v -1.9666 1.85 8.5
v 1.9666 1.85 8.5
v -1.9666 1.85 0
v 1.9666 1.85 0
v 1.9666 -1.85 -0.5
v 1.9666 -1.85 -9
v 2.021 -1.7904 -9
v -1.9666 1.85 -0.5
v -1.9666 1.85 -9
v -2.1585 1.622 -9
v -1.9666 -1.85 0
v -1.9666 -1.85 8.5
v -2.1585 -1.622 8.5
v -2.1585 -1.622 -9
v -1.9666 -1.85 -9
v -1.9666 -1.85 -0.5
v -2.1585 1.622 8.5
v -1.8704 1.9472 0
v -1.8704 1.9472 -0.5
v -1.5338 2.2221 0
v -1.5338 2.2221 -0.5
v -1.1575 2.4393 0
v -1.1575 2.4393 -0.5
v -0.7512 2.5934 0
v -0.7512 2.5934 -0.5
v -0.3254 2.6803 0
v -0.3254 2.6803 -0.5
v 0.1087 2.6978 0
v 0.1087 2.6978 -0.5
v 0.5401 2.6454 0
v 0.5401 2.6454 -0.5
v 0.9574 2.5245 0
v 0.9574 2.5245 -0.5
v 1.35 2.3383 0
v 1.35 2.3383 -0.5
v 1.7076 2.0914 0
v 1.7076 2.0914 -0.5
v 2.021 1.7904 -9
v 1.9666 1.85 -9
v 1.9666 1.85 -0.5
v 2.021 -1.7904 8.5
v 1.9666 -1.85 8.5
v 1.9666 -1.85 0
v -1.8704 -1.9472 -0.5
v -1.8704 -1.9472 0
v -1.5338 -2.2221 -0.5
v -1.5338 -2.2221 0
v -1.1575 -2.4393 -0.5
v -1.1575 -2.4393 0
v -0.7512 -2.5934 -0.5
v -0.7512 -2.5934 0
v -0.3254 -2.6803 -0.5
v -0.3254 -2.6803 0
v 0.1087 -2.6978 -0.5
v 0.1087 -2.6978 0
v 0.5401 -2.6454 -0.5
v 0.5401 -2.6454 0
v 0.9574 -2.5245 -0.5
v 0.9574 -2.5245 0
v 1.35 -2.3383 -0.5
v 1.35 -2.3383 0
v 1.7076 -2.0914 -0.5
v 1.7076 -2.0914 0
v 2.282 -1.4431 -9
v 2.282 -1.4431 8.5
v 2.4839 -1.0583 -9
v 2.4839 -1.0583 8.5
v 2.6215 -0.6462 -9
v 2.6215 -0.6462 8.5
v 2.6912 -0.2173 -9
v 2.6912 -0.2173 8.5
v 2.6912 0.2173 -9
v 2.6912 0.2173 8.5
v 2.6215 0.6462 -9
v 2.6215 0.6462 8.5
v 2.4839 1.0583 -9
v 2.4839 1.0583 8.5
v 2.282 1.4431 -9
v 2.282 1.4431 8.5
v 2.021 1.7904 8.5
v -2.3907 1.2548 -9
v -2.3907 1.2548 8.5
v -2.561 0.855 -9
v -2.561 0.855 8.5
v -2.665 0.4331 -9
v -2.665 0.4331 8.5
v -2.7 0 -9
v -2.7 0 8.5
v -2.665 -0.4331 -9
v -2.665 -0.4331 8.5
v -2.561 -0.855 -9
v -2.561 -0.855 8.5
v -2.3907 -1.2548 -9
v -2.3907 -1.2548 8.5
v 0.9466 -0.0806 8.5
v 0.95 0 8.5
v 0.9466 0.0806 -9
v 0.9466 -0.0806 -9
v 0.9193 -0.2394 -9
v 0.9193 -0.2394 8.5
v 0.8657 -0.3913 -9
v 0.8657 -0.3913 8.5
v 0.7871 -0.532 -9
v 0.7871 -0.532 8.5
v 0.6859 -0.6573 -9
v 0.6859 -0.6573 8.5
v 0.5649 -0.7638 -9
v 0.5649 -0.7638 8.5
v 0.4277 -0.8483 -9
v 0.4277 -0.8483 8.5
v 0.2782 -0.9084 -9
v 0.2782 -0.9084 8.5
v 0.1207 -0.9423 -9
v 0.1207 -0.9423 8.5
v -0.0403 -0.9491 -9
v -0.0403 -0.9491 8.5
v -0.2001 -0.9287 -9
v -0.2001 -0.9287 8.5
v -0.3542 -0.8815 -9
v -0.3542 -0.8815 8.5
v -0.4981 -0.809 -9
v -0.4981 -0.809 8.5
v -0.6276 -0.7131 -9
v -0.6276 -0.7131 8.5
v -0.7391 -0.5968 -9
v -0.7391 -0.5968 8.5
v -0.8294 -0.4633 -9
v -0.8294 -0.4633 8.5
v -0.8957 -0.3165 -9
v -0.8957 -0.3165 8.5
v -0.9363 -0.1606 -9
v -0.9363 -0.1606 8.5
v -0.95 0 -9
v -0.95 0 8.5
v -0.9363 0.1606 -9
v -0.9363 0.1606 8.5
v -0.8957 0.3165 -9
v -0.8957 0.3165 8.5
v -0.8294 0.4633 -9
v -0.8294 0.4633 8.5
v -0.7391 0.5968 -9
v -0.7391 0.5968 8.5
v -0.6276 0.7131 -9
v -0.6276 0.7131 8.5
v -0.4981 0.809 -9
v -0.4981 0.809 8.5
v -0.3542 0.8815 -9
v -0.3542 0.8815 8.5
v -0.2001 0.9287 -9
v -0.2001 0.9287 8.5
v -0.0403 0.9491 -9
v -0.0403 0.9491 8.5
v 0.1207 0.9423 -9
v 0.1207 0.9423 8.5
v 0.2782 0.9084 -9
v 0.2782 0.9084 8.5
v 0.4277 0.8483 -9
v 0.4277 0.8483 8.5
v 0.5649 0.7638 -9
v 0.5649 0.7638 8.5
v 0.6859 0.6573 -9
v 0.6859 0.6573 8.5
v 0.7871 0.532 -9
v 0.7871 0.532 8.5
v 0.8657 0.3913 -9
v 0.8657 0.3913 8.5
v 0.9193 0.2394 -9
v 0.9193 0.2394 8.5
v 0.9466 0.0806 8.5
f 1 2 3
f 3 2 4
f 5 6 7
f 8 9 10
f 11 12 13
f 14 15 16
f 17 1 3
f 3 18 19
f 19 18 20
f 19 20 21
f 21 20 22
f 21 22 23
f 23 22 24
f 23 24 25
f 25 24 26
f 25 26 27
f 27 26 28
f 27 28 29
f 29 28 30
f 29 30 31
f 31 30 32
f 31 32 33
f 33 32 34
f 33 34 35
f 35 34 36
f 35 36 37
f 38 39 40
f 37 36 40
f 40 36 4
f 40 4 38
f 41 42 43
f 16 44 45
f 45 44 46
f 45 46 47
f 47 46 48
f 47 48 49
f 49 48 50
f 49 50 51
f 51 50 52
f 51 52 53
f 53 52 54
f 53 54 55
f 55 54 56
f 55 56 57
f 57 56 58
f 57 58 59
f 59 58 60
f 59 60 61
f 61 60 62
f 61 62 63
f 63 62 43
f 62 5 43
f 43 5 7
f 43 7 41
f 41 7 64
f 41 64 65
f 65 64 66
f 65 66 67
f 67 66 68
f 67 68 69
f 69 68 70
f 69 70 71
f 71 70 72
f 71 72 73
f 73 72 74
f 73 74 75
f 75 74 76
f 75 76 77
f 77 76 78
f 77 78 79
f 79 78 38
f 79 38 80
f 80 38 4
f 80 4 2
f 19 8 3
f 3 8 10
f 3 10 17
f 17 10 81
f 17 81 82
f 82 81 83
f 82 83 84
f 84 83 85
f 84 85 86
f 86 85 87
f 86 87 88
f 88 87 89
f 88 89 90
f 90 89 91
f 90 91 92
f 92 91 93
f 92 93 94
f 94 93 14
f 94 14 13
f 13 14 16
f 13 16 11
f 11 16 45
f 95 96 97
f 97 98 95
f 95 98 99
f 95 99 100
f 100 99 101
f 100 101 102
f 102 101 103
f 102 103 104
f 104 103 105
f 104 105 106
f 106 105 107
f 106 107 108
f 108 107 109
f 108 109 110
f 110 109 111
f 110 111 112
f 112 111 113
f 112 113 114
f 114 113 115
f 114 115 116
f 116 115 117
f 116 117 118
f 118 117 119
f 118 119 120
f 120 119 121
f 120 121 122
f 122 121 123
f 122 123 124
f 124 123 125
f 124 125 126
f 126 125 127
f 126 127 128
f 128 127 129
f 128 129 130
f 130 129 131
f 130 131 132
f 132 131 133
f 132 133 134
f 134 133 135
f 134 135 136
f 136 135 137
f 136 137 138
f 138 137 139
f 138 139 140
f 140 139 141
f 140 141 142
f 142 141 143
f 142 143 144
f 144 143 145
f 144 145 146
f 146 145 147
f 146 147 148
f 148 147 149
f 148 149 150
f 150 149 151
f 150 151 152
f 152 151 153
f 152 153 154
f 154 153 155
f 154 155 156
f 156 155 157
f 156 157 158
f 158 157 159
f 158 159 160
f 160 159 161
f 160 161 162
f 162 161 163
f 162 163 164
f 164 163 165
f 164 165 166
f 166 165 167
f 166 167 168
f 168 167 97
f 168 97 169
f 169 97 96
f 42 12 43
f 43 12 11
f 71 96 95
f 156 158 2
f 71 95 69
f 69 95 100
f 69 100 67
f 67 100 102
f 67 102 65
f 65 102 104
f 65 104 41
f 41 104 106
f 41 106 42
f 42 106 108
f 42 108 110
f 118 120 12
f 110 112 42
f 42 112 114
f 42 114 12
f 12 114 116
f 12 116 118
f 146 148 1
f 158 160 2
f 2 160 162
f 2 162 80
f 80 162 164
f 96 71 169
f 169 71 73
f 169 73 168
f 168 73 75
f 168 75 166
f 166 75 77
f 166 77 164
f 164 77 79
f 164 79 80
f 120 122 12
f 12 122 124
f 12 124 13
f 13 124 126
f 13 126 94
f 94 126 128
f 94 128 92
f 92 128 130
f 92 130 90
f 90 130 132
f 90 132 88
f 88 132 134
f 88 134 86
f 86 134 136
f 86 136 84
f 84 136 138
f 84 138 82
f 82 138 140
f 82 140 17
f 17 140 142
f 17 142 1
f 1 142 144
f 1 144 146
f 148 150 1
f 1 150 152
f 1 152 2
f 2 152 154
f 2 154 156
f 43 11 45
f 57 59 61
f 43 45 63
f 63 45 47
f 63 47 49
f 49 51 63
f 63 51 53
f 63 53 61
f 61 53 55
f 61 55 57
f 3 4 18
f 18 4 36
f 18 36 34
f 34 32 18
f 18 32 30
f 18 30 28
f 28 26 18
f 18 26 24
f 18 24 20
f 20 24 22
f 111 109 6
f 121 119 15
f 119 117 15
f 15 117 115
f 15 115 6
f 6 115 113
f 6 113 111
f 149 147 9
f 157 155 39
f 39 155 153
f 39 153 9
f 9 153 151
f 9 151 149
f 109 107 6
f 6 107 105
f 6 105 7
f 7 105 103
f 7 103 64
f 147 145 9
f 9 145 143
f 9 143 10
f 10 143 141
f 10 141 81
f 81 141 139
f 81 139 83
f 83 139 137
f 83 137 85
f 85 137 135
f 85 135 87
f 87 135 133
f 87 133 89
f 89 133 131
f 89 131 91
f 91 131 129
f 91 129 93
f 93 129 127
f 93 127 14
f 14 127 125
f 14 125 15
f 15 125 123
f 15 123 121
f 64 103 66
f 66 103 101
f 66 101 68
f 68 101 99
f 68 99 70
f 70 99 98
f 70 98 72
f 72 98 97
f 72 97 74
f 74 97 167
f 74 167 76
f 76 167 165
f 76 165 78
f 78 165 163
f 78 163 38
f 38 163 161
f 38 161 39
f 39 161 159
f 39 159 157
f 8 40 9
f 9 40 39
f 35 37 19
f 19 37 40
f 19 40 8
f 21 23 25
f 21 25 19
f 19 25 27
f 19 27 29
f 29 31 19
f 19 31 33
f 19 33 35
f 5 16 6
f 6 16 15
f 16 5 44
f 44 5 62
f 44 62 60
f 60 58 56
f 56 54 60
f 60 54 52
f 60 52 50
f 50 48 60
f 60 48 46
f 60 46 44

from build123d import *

# Parameters (mm, degrees)
BOSS_EXTRUDE2_DEPTH = 8.5
BOSS_EXTRUDE4_START = 9
SKETCH3_R           = 2.700000061
SKETCH3_R_2         = 0.950000005
BOSS_EXTRUDE4_DEPTH = 9
SKETCH4_R           = 0.950000005
CUT_EXTRUDE1_DEPTH  = 8.5


with BuildPart() as part:
    # Sketch2 → Boss-Extrude2 (new body)
    with BuildSketch(Plane.XY):
        with BuildLine():
            Line((0, 0.950000005), (0, 1.85))
            Line((0, 1.85), (-1.966596128, 1.85))
            ThreePointArc((-1.966596128, 1.85), (-2.700000061, 0), (-1.966596128, -1.85))
            Line((-1.966596128, -1.85), (0, -1.85))
            Line((0, -1.85), (0, -0.950000005))
            ThreePointArc((0, -0.950000005), (-0.950000005, 0), (0, 0.950000005))
        make_face()
        with BuildLine():
            Line((1.966596128, 1.85), (0, 1.85))
            Line((0, 1.85), (0, 0.950000005))
            ThreePointArc((0, 0.950000005), (0.671751446, 0.671751446), (0.950000005, 0))
            ThreePointArc((0.950000005, 0), (0.671751446, -0.671751446), (0, -0.950000005))
            Line((0, -0.950000005), (0, -1.85))
            Line((0, -1.85), (1.966596128, -1.85))
            ThreePointArc((1.966596128, -1.85), (2.700000061, 0), (1.966596128, 1.85))
        make_face()
    extrude(amount=BOSS_EXTRUDE2_DEPTH)

    # Sketch3 → Boss-Extrude4 (add)
    with BuildSketch(Plane(origin=(0, 0, 0), x_dir=(-1, 0, 0), z_dir=(0, 0, -1)).offset(BOSS_EXTRUDE4_START)):
        Circle(SKETCH3_R)
        Circle(SKETCH3_R_2, mode=Mode.SUBTRACT)
    extrude(amount=-BOSS_EXTRUDE4_DEPTH)

    # Sketch4 → Cut-Extrude1 (cut)
    with BuildSketch(Plane(origin=(0, 0, -9), x_dir=(-1, 0, 0), z_dir=(0, 0, -1))):
        Circle(SKETCH4_R)
        with BuildLine():
            Line((-1.966596128, 1.85), (1.966596128, 1.85))
            ThreePointArc((1.966596128, 1.85), (0, 2.700000061), (-1.966596128, 1.85))
        make_face()
        with BuildLine():
            Line((1.966596128, -1.85), (-1.966596128, -1.85))
            ThreePointArc((-1.966596128, -1.85), (0, -2.700000061), (1.966596128, -1.85))
        make_face()
    extrude(amount=-CUT_EXTRUDE1_DEPTH, mode=Mode.SUBTRACT)


solid = part.part
